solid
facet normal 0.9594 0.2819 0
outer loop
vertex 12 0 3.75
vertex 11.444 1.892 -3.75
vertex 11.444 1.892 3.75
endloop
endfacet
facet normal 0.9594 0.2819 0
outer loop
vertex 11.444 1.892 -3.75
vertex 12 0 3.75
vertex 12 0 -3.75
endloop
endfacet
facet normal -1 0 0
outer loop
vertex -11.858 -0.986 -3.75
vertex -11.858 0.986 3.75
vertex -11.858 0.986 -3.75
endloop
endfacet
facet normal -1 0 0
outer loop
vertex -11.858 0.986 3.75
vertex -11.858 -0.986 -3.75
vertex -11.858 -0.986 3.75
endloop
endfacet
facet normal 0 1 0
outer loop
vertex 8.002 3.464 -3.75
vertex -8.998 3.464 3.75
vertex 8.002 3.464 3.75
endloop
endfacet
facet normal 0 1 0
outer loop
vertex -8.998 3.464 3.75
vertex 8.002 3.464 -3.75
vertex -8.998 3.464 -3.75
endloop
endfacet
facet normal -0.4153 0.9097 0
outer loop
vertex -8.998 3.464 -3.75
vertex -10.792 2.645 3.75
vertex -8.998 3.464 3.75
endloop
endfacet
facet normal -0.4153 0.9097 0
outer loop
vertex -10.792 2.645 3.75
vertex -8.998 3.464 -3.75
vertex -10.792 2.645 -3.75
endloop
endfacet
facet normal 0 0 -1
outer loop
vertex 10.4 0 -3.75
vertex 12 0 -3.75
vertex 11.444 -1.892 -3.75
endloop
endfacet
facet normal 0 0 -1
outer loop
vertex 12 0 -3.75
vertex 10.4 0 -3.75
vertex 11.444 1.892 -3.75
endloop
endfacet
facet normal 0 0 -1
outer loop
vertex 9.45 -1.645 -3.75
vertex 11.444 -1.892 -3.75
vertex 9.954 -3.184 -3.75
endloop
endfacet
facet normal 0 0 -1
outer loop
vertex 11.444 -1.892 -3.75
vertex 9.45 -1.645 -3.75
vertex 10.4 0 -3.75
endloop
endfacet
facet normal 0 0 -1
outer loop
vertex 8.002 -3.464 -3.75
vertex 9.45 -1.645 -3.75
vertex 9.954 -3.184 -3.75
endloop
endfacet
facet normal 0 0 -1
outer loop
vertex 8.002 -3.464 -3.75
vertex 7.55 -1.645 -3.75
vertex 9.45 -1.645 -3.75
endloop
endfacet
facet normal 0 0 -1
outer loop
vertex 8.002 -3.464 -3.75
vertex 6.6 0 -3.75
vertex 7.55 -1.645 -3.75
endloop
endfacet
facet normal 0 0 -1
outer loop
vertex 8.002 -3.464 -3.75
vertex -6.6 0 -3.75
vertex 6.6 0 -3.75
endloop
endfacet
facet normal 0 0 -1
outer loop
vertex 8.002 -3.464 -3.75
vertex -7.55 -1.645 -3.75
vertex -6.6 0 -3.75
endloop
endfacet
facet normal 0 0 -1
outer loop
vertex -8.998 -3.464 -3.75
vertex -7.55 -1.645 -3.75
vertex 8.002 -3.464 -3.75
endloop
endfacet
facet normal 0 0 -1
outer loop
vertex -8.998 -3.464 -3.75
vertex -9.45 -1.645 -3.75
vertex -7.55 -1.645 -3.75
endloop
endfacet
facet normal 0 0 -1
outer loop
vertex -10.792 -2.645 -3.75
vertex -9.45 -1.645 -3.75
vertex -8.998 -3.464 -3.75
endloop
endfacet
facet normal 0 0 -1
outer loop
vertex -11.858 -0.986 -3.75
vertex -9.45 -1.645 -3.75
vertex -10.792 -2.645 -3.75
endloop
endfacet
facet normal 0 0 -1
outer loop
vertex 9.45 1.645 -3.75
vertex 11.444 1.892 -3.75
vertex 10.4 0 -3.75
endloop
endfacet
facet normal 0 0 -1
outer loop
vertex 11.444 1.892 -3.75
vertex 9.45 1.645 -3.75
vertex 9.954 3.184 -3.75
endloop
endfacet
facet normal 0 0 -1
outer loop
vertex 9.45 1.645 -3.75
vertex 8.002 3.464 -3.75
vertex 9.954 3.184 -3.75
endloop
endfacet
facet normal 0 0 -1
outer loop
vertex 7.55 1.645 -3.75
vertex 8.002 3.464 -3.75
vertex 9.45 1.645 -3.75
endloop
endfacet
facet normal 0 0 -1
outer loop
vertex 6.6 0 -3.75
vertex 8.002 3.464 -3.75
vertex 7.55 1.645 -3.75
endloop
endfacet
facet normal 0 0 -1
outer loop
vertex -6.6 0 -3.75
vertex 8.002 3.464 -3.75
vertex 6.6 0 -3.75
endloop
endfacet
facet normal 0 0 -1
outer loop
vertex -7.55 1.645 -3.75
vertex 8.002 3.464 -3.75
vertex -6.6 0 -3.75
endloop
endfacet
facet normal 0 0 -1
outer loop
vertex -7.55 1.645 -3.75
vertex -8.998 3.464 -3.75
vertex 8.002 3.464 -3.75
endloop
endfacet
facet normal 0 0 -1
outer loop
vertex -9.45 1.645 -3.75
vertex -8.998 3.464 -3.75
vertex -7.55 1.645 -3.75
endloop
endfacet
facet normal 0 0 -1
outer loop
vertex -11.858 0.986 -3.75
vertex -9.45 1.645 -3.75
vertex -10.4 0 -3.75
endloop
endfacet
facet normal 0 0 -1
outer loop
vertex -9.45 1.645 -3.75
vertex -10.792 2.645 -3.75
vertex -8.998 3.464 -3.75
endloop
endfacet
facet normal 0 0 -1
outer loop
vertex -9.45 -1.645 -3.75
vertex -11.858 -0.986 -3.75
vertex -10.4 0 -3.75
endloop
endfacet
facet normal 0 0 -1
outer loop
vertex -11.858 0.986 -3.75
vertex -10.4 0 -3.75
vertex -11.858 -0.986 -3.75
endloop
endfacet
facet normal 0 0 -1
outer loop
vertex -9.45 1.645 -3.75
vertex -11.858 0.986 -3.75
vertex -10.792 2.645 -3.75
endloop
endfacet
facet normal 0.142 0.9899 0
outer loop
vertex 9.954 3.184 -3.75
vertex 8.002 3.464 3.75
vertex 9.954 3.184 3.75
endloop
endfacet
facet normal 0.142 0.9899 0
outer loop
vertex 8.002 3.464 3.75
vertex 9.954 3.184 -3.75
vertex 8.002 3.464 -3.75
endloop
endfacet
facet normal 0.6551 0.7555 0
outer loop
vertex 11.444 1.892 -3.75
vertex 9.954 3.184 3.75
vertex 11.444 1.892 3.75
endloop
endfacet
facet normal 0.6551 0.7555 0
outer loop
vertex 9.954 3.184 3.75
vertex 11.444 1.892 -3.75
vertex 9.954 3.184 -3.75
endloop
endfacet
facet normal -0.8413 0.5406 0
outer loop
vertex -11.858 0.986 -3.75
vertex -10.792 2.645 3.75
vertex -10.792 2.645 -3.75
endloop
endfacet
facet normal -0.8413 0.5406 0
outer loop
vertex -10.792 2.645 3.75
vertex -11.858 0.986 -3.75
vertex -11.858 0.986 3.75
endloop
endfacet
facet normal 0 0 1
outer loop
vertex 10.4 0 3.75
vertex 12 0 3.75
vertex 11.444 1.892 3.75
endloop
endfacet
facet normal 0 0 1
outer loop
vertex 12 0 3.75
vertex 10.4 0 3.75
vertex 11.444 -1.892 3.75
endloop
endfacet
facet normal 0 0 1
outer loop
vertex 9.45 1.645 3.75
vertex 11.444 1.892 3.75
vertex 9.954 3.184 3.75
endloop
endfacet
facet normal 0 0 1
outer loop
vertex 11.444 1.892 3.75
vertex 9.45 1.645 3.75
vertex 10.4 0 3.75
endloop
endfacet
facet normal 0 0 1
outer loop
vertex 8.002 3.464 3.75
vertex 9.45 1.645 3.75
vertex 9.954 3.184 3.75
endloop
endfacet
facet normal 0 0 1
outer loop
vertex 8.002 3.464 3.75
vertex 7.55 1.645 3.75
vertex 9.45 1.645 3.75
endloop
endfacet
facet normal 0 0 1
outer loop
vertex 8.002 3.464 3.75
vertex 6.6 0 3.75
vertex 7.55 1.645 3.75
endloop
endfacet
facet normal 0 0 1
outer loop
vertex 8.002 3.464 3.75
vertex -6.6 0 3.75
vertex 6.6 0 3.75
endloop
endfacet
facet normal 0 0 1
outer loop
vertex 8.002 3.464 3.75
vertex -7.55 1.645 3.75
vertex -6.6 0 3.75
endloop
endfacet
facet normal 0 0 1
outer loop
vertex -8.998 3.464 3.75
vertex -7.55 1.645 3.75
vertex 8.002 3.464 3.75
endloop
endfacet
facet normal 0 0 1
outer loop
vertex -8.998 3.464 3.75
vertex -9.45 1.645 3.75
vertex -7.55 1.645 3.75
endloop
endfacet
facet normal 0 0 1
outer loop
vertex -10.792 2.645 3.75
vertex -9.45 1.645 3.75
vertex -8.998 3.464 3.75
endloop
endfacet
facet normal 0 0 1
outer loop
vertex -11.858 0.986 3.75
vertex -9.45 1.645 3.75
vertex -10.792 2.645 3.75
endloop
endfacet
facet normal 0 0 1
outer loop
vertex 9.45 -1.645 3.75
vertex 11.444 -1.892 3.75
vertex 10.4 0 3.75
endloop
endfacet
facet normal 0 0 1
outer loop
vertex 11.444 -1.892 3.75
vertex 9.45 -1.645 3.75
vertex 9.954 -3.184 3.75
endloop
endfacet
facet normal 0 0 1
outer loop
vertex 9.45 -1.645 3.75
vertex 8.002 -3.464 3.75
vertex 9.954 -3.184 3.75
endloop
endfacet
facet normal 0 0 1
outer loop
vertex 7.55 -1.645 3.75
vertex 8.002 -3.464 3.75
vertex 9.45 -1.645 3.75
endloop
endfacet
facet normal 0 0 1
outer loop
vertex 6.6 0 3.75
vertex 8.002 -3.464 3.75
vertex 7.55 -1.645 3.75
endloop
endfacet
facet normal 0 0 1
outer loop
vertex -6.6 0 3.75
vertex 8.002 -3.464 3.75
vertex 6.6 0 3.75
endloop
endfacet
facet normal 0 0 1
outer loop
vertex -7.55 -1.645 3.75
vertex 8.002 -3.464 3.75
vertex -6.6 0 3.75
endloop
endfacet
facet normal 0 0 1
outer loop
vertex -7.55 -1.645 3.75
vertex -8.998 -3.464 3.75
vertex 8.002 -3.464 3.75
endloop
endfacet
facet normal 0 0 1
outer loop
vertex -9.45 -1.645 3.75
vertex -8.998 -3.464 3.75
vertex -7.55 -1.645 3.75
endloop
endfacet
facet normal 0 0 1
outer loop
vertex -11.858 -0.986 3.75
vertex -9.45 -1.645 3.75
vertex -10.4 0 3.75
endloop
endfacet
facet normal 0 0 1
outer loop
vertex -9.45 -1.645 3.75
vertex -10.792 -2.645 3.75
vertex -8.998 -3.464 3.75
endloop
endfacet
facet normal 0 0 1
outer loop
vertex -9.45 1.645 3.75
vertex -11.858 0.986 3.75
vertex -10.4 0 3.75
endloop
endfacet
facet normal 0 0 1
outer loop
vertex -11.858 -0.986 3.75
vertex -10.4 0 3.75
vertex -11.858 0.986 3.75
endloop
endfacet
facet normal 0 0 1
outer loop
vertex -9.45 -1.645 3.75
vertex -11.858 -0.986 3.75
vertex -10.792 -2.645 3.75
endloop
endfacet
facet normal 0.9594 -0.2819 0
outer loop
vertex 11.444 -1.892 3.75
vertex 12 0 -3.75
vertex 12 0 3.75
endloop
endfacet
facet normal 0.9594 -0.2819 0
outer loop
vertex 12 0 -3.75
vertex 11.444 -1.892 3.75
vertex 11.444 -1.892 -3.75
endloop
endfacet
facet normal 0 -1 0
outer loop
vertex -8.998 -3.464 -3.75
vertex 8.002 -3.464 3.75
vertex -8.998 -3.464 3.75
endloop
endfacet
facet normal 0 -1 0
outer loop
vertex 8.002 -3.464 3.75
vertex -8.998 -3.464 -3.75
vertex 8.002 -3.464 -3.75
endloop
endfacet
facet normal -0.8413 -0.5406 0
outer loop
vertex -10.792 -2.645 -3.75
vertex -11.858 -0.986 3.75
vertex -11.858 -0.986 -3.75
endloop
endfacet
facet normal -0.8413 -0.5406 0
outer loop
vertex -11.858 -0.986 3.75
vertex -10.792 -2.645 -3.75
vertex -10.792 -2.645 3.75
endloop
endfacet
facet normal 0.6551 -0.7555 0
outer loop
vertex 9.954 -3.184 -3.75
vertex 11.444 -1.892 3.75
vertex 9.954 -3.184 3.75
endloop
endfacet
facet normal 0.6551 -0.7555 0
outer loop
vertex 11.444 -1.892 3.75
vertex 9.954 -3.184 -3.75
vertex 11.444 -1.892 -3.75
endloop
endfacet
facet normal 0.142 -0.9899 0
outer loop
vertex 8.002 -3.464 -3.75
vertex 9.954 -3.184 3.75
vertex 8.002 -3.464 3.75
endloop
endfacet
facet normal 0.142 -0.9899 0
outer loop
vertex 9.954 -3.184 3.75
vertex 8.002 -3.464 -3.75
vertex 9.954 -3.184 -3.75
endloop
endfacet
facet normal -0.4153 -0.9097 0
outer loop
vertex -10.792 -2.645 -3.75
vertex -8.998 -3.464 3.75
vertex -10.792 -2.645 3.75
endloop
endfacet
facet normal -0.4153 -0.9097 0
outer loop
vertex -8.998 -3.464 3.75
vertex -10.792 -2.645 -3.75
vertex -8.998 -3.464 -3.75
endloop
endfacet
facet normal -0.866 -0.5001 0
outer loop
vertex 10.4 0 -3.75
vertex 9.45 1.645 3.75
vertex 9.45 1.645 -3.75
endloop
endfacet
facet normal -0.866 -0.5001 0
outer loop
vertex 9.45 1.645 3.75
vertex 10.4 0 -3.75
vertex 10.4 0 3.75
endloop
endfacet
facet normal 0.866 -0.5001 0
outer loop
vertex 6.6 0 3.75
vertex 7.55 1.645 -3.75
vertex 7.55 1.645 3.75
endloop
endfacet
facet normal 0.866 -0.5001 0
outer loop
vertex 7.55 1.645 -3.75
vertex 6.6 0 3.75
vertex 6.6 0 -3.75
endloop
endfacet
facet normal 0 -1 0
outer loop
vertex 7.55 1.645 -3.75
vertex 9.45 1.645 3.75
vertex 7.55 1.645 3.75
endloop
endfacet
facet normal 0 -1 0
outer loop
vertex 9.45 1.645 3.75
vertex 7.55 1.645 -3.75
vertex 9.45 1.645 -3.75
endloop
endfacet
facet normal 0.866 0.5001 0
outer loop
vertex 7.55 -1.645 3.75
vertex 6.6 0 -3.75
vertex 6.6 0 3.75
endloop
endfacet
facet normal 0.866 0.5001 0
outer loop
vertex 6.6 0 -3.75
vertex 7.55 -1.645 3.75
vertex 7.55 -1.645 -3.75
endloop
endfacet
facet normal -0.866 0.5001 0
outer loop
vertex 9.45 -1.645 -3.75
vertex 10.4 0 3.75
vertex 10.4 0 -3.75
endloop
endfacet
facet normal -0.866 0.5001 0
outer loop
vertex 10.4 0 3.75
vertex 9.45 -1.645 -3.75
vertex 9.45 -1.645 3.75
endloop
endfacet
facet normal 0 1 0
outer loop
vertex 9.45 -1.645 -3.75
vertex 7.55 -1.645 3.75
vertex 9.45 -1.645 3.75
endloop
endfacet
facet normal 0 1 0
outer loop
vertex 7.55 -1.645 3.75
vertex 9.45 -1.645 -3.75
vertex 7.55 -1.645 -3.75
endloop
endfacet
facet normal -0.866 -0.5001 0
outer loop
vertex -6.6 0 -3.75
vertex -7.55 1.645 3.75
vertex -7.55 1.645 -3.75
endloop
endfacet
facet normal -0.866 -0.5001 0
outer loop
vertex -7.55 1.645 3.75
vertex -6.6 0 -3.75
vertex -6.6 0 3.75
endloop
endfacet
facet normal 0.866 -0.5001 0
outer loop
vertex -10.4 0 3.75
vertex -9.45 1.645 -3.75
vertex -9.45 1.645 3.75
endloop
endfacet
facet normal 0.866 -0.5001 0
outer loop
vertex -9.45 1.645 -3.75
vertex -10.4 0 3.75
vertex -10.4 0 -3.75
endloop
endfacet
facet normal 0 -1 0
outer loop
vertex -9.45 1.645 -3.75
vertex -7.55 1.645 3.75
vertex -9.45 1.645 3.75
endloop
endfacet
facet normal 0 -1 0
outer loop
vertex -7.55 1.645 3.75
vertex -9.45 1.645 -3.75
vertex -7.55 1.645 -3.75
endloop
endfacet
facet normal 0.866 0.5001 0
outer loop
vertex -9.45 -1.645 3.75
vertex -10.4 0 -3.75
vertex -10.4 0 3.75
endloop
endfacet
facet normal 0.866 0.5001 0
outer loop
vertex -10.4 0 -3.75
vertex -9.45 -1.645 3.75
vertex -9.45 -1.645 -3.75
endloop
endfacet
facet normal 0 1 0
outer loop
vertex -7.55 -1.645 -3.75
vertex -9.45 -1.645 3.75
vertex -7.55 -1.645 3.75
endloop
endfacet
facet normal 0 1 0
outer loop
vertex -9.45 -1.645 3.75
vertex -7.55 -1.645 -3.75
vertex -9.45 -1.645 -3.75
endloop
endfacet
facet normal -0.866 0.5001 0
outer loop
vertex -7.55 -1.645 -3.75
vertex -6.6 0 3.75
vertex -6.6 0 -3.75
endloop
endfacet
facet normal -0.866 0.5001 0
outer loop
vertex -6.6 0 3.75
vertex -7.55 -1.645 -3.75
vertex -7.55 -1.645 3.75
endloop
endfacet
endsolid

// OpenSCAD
frontreinforcement();

module frontreinforcement() {
	difference() {
		hull() {
			translate([17/2,0,0])
				cylinder(d=7, h=7.5, center = true);
			translate([-17/2,0,0])
				cylinder(d=7, h=7.5, center = true);
		}
		
		
		translate([17/2,0,0])
			cylinder(d=3.8, h=10.1, center = true);
		translate([-17/2,0,0])
			cylinder(d=3.8, h=10.1, center = true);
	}
}

module frontReinforcementWithSwitch() {
	difference() {
		hull() {
			translate([17/2,0,0])
				cylinder(d=10, h=20, center = true);
			translate([-17/2,0,0])
				cylinder(d=7, h=20, center = true);
		}
		
		
		translate([17/2,0,0])
			cylinder(d=3.8, h=20.1, center = true);
		translate([-17/2,0,0])
			cylinder(d=3.8, h=20.1, center = true);
		
		#rotate([90,0,0]) {
			translate([17/2,-5,0])
				rotate([0,45,0])
					cylinder(d=3, h=15);
			translate([17/2,5,0])
				rotate([0,45,0])
					cylinder(d=3, h=15);
		}
	}
}
